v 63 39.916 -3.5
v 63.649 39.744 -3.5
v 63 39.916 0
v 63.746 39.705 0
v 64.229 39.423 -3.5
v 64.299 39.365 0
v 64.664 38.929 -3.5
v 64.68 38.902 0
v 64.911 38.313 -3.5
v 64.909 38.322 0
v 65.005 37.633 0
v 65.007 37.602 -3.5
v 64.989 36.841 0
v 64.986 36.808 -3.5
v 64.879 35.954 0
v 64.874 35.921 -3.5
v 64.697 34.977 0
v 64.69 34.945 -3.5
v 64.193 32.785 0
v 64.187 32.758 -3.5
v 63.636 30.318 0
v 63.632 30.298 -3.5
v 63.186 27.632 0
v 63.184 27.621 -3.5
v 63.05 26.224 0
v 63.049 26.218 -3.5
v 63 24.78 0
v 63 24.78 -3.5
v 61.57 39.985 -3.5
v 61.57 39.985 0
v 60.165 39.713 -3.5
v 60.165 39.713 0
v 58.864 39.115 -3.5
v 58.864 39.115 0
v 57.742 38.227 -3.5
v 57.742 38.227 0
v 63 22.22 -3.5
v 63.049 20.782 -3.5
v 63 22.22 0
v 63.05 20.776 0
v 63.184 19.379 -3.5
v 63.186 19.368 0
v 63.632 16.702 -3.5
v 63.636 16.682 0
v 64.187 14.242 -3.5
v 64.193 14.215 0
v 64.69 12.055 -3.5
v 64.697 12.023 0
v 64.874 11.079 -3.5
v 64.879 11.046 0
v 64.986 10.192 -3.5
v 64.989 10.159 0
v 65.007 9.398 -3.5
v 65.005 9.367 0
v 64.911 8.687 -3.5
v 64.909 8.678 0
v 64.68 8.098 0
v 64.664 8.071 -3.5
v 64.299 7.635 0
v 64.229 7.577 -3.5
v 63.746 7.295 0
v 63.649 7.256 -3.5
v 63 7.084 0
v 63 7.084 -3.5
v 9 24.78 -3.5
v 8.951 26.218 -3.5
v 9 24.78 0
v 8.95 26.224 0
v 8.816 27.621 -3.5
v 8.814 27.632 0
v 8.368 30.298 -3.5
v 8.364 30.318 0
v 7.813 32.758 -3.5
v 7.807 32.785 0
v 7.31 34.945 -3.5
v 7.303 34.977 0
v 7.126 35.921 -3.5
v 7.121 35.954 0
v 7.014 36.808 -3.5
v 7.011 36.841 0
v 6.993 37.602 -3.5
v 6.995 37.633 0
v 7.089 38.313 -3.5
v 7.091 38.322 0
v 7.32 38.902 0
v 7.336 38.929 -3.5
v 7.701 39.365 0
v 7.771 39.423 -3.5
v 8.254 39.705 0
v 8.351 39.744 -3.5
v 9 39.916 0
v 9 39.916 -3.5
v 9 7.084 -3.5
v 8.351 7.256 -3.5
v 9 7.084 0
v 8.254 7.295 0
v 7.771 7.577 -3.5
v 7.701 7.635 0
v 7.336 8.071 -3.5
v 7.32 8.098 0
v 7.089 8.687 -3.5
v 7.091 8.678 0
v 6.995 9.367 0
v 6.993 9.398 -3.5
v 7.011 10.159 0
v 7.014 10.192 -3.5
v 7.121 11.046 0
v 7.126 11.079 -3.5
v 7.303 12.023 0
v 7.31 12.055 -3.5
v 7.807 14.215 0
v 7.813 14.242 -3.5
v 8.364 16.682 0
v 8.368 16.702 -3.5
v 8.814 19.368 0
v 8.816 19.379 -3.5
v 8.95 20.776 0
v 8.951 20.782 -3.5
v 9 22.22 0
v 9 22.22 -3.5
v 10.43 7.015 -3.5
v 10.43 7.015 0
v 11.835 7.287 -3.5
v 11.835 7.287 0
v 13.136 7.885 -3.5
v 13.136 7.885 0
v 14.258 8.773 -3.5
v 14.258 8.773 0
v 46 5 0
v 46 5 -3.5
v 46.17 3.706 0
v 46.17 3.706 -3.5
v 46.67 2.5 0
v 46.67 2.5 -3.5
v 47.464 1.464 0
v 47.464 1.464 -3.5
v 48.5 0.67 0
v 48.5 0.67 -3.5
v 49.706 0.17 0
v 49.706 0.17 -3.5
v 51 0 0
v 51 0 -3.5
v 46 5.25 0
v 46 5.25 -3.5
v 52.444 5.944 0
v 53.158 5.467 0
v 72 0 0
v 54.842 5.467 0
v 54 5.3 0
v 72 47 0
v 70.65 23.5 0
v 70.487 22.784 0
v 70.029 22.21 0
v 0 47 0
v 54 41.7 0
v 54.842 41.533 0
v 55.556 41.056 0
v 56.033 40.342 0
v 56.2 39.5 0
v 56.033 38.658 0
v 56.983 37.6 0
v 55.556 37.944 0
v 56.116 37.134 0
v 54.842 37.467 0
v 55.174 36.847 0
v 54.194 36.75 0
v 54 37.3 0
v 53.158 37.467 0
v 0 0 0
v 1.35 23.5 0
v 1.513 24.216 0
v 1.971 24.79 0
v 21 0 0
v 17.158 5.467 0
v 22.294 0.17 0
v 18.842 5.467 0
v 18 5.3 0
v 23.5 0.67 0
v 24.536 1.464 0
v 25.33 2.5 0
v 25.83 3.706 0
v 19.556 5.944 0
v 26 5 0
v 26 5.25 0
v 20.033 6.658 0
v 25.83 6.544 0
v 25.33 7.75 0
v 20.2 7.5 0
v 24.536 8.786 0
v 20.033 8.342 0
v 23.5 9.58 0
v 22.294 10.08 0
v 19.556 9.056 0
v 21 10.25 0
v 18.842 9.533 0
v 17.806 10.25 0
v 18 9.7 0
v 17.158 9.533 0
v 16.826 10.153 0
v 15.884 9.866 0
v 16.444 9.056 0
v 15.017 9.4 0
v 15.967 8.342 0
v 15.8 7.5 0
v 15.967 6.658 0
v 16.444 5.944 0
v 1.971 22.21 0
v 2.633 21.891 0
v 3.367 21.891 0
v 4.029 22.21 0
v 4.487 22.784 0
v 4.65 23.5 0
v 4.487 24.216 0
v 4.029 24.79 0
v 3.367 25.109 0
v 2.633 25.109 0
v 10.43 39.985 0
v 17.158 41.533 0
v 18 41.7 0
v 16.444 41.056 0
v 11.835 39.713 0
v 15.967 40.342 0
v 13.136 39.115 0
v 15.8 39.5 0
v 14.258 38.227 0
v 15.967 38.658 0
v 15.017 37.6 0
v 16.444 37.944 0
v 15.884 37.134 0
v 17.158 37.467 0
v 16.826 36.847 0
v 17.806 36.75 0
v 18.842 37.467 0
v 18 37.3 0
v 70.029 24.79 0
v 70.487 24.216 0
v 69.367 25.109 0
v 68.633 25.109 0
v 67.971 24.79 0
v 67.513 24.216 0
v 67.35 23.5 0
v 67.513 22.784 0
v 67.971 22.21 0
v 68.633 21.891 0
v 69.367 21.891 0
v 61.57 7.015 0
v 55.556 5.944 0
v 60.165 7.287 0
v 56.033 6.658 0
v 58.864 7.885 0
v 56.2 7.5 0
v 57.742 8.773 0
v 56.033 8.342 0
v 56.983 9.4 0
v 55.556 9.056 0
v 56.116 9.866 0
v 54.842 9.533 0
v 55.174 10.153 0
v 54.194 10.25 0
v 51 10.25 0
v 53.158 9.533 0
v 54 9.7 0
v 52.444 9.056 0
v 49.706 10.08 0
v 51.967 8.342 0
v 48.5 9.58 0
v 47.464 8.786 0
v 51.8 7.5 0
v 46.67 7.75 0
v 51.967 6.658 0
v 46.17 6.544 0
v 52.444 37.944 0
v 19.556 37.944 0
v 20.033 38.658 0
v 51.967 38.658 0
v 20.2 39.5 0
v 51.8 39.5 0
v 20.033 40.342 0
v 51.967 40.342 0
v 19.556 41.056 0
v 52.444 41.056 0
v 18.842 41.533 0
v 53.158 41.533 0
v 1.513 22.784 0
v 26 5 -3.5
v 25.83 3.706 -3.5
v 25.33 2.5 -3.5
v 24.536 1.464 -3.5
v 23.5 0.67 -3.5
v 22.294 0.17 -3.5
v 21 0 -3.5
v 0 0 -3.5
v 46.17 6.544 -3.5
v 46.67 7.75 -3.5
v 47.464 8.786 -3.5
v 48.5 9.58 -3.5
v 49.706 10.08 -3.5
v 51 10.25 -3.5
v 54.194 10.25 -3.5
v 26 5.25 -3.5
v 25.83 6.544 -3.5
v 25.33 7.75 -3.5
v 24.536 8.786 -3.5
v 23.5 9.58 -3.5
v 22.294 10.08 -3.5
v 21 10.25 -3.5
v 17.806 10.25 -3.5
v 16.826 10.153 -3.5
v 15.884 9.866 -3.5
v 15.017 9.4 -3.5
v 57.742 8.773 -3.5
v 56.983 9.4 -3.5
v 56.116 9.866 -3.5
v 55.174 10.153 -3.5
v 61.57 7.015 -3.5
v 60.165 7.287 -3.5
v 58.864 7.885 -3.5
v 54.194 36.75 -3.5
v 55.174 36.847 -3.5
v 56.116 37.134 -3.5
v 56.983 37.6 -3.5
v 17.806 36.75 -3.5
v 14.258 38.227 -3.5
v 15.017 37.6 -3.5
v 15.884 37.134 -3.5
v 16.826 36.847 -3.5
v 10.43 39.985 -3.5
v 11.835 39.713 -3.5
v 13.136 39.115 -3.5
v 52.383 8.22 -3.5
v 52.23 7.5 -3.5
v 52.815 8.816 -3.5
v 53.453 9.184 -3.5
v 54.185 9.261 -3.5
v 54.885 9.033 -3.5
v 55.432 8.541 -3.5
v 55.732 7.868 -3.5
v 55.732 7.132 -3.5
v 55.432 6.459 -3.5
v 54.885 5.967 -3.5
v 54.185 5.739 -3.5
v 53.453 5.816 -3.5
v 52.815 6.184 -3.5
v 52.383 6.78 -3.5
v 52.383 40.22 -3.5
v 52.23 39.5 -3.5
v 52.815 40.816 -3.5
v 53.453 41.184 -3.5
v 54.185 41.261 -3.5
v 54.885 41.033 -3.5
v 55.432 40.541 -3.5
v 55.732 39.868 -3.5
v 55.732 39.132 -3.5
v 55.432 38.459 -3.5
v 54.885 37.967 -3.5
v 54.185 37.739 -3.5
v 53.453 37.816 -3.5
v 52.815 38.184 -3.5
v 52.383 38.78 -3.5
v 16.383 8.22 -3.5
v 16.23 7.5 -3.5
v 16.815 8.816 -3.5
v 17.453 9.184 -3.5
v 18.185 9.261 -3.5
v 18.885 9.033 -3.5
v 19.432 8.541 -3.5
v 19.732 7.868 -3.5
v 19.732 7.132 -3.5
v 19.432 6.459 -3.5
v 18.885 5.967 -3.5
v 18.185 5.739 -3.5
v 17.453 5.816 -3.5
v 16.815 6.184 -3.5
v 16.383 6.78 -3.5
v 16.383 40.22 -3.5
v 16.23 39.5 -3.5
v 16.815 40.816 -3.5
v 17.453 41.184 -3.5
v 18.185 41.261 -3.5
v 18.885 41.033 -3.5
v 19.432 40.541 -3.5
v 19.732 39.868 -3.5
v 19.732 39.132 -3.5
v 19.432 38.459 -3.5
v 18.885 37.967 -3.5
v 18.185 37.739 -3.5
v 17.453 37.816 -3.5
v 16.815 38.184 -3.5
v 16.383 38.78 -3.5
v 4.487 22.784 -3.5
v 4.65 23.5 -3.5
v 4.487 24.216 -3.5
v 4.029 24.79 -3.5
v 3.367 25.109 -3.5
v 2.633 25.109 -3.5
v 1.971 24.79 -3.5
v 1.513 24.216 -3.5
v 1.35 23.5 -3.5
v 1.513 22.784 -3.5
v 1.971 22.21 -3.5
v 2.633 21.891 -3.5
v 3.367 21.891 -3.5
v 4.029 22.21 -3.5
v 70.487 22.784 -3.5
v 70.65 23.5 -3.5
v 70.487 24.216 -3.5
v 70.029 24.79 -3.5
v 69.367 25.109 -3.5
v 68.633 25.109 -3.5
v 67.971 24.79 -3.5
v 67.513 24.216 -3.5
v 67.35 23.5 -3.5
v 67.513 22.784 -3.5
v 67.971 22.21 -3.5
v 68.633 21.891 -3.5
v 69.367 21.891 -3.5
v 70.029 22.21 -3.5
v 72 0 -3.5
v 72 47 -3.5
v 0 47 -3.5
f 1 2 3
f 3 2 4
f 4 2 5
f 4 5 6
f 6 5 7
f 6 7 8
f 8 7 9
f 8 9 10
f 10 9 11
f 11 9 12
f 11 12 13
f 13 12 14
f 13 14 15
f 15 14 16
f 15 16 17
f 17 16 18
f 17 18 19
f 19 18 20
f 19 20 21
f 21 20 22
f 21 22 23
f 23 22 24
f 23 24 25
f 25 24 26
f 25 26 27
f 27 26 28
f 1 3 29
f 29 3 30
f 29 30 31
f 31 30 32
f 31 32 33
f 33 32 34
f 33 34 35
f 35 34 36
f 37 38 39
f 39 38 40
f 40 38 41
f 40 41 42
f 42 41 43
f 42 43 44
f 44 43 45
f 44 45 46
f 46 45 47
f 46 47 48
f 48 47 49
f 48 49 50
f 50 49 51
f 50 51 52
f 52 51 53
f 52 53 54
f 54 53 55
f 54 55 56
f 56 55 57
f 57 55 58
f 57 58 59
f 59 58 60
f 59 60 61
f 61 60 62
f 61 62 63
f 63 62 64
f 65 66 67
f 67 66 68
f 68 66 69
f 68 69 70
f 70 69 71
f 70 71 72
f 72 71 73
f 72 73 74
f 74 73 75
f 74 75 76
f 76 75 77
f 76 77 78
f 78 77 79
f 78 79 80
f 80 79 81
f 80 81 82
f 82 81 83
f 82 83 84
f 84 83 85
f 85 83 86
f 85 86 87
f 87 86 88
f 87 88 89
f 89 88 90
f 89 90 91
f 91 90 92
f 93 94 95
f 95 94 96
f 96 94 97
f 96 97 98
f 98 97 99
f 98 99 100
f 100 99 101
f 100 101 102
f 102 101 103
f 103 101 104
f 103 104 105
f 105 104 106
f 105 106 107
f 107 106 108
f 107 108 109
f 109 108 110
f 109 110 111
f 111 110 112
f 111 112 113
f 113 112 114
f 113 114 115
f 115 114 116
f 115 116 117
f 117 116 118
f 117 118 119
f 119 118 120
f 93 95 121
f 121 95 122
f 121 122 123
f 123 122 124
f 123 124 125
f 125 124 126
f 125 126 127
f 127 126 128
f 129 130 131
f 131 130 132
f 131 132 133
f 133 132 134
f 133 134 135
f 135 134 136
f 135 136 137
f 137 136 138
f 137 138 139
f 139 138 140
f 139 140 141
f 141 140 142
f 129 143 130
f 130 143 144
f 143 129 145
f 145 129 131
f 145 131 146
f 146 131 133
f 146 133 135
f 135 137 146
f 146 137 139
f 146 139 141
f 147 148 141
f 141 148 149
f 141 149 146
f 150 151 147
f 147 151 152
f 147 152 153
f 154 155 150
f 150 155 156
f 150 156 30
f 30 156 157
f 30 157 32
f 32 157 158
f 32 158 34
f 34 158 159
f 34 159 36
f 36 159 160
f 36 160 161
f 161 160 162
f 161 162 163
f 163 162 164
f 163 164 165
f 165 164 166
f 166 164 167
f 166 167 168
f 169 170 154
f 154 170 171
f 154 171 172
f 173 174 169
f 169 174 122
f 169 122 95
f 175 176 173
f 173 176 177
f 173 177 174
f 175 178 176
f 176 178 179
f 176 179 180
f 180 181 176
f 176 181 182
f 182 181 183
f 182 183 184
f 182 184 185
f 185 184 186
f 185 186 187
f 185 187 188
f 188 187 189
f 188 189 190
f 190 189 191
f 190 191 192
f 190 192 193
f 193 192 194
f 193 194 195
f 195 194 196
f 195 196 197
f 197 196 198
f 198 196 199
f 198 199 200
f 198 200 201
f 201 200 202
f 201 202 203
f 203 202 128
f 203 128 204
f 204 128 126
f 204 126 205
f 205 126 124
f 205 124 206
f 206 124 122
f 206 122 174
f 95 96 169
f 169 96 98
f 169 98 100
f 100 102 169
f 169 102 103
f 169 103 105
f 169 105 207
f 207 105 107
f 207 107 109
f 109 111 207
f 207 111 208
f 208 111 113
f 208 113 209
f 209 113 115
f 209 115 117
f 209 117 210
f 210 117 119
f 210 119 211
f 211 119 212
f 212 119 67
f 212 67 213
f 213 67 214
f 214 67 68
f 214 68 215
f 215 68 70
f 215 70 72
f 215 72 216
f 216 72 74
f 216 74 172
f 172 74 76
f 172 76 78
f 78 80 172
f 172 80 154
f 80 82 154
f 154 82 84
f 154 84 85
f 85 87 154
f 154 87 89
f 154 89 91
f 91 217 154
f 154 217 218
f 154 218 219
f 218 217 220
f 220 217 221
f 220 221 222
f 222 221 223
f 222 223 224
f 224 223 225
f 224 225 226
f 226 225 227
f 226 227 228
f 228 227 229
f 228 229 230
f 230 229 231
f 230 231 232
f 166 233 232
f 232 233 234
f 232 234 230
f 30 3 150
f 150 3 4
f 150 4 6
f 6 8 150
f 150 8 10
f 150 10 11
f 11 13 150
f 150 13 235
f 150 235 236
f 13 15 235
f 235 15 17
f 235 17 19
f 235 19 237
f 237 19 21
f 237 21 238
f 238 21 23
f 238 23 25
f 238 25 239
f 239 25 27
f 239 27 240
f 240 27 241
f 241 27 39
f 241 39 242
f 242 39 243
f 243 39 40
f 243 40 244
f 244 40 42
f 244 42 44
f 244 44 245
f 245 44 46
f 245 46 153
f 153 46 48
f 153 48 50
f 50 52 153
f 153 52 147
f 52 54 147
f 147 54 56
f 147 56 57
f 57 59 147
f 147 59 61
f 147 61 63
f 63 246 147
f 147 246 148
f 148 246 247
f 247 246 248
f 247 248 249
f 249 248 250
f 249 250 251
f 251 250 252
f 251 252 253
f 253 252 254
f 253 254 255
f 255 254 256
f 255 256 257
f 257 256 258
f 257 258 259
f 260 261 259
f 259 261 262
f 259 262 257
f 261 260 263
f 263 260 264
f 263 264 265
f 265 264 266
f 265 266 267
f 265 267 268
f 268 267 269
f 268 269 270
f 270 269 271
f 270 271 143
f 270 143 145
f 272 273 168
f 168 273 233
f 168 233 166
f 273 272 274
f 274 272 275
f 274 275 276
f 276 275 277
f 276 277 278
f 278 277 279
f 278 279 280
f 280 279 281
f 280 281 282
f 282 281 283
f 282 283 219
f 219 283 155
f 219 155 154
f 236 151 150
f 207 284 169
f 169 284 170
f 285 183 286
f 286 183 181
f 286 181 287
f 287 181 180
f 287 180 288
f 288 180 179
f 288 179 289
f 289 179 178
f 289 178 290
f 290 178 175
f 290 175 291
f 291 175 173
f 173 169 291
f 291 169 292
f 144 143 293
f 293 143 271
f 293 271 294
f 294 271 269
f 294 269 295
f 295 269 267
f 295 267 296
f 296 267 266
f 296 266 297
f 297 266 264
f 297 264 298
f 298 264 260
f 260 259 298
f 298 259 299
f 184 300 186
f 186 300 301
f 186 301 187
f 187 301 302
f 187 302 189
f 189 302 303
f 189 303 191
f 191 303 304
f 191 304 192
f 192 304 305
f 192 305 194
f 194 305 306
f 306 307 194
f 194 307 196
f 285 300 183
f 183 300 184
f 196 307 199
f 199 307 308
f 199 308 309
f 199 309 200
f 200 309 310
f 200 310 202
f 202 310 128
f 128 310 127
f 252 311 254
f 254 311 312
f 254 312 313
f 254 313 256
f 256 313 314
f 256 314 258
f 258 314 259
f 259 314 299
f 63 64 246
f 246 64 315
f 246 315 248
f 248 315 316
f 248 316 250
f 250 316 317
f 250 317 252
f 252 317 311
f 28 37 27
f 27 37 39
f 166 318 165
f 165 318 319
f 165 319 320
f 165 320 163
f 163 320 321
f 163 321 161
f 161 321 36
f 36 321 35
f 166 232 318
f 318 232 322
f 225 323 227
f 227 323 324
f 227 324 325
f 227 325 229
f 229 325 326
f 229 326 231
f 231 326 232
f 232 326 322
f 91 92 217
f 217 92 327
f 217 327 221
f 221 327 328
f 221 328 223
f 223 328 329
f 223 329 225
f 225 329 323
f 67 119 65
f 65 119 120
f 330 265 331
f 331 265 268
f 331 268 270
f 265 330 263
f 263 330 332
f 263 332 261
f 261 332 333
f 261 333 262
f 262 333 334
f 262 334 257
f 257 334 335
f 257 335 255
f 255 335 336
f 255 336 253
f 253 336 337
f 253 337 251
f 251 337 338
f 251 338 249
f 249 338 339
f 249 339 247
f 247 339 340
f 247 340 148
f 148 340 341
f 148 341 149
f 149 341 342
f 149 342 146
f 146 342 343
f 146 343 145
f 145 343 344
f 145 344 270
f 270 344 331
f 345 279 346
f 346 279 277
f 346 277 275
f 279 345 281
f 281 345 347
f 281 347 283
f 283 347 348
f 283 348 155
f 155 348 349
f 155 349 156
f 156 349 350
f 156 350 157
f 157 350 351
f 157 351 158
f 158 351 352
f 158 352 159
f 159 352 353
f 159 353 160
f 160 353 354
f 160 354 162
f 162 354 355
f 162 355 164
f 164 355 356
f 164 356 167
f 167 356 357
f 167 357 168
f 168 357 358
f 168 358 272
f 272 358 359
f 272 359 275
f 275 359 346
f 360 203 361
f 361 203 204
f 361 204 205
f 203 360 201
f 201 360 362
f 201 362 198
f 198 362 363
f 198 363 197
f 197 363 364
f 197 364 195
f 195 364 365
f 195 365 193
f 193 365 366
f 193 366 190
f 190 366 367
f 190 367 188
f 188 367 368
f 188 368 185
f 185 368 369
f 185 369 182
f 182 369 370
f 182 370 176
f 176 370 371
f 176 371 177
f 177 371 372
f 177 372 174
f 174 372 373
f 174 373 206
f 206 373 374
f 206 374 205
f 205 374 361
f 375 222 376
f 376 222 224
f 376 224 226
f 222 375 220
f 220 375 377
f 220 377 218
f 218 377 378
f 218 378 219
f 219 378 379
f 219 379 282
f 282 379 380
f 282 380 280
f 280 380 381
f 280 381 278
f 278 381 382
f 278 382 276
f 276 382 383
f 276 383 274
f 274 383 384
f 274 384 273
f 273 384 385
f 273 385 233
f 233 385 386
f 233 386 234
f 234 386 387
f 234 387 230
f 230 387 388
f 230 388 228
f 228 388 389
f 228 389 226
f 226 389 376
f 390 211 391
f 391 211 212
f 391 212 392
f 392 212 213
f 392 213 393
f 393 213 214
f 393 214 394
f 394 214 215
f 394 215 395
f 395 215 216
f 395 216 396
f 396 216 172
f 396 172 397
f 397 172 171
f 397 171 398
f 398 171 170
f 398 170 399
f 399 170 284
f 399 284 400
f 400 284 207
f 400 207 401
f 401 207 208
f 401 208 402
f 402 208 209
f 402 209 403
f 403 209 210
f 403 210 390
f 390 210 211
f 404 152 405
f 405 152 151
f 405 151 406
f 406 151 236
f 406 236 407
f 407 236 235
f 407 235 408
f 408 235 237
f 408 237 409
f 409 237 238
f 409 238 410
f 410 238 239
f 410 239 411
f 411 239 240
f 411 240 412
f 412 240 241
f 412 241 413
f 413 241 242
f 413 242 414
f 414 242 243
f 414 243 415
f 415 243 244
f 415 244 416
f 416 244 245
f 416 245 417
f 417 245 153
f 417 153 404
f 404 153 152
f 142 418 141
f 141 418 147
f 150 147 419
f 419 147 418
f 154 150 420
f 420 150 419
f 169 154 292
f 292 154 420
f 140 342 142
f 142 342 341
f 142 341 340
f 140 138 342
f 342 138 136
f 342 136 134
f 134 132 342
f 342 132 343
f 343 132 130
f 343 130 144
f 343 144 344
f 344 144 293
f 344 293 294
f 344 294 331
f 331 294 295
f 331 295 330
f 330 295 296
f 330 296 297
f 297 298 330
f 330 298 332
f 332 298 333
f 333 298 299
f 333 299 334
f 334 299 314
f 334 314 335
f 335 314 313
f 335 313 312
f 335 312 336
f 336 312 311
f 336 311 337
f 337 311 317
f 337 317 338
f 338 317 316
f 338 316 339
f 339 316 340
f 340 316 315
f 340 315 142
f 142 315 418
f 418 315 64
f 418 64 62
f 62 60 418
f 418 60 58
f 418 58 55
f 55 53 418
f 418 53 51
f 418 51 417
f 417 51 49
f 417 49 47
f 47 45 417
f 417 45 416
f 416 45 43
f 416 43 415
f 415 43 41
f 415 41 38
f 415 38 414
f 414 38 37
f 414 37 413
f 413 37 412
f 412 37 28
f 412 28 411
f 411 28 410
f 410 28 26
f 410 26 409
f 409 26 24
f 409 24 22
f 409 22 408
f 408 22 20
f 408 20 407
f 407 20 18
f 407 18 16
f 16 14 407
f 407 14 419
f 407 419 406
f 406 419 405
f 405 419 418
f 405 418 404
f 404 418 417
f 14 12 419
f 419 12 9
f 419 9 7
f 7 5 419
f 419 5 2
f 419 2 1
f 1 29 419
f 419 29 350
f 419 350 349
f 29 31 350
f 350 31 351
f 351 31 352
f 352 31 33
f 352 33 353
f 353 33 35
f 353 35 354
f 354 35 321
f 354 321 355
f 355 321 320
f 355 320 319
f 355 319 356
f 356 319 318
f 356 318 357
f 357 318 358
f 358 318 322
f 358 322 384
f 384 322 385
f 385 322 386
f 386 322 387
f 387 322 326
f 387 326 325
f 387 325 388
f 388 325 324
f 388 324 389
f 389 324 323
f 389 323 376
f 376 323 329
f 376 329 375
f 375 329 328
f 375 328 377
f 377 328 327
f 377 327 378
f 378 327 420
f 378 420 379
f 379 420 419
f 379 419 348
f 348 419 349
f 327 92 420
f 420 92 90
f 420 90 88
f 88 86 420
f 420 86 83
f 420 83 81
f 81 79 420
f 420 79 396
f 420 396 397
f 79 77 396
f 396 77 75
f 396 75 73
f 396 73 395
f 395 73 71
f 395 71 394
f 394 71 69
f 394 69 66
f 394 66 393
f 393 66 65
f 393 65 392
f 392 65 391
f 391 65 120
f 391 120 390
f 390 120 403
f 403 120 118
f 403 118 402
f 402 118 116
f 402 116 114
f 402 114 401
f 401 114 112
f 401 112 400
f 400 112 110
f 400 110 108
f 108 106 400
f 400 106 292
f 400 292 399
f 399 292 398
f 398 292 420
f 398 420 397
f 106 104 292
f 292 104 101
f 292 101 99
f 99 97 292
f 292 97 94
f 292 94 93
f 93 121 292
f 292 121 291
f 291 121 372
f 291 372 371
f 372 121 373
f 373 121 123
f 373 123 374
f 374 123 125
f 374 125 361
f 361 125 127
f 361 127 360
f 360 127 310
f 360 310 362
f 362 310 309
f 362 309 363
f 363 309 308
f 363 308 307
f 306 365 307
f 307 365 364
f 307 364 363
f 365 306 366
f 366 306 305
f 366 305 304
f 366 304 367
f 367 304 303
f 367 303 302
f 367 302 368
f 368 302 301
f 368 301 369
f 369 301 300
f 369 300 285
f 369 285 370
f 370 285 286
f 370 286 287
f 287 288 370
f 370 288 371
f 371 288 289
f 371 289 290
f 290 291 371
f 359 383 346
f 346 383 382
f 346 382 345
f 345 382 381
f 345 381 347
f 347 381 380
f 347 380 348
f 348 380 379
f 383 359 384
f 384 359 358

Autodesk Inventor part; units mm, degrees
ref_plane "XY Plane" through (0, 0, 0) normal (0, 0, 1) x (1, 0, 0)
sketch "Sketch1" plane through (0, 0, 0) normal (0, 0, 1) x (1, 0, 0)
  line L0 (0, 0) -> (72, 0)
  line L1 (72, 0) -> (72, 47)
  line L2 (72, 47) -> (0, 47)
  line L3 (0, 47) -> (0, 0)
  circle A0 centre (3, 23.5) radius 1.65
  circle A1 centre (69, 23.5) radius 1.65
  line L4 (0, 23.5) -> (72, 23.5) construction
  circle A2 centre (18, 39.5) radius 2.2
  circle A3 centre (54, 39.5) radius 2.2
  circle A4 centre (54, 7.5) radius 2.2
  circle A5 centre (18, 7.5) radius 2.2
  line L5 (18, 39.5) -> (18, 7.5) construction
  line L6 (18, 7.5) -> (54, 7.5) construction
  line L7 (54, 7.5) -> (54, 39.5) construction
  line L8 (54, 39.5) -> (18, 39.5) construction
  line L9 (3.1536, 51.5748) -> (75.0735, 51.5748) construction
  line L10 (75.0735, 51.5748) -> (75.0735, -9.0389) construction
  line L11 (75.0735, -9.0389) -> (3.1536, -9.0389) construction
  line L12 (3.1536, -9.0389) -> (3.1536, 51.5748) construction
  circle A6 centre (10, 34) radius 6
  line L13 (36, 0) -> (36, 47)
  line L14 (9, 28.0839) -> (9, 23.5)
  line L15 (15.3327, 36.75) -> (36, 36.75)
  circle A7 centre (62, 34) radius 6
  line L16 (63, 28.0839) -> (63, 23.5)
  line L17 (56.6673, 36.75) -> (36, 36.75)
  circle A8 centre (10, 13) radius 6
  line L18 (9, 18.9161) -> (9, 23.5)
  line L19 (15.3327, 10.25) -> (36, 10.25)
  circle A9 centre (62, 13) radius 6
  line L20 (56.6673, 10.25) -> (36, 10.25)
  line L21 (63, 18.9161) -> (63, 23.5)
  line L22 (26, 10.25) -> (46, 10.25)
  line L23 (46, 10.25) -> (46, 0)
  line L24 (46, 0) -> (26, 0)
  line L25 (26, 0) -> (26, 10.25)
  point P0 (36, 39.5)
  point P1 (54, 23.5)
  dimension "d0" = 72
  dimension "d1" = 47
  dimension "d2" = 3.3
  dimension "d3" = 3.3
  dimension "d4" = 66
  dimension "d5" = 3
  dimension "d6" = 36
  dimension "d7" = 32
  dimension "d8" = 36
  dimension "d9" = 4.4
  dimension "d10" = 4.4
  dimension "d11" = 4.4
  dimension "d12" = 4.4
  dimension "d32" = 12
  dimension "d33" = 10
  dimension "d34" = 13
  dimension "d35" = 9
  dimension "d36" = 10.25
  dimension "d44" = 10
  dimension "d45" = 10
extrude "Extrusion1" add sketch "Sketch1" against normal blind 3.5 contours L3 L2 L13 L15 A6 L14 L18 A8 L19 L25 L0 | L25 L19 L13 L0 | L13 L20 L23 L0 | L2 L1 L0 L23 L20 A9 L21 L16 A7 L17 L13 | A2 | A3 | A4 | A5
extrude "Extrusion2" cut sketch "Sketch1" against normal through all draft -7 contours A2 | A3 | A4 | A5
fillet "Fillet1" radius 5 8 edges at (9, 18.9161, -1.75) (9, 28.0839, -1.75) (15.3327, 36.75, -1.75) (56.6673, 36.75, -1.75) (63, 18.9161, -1.75) (56.6673, 10.25, -1.75) (15.3327, 10.25, -1.75) (63, 28.0839, -1.75)
extrude "Extrusion3" cut sketch "Sketch1" against normal through all contours L25 L19 L13 L0 | L13 L20 L23 L0
fillet "Fillet2" radius 5 4 edges at (26, 10.25, -1.75) (46, 10.25, -1.75) (26, 0, -1.75) (46, 0, -1.75)
sketch "Sketch2" plane through (0, 0, 0) normal (0, 0, 1) x (1, 0, 0)
  arc A0 (6.7273, 18.0288) -> (9, 22.2195) centre (4, 22.2195) ccw projected
  arc A1 (6.7273, 18.0288) -> (14.258, 8.7727) centre (10, 13) ccw projected
  line L0 (9, 22.2195) -> (9, 24.7805) projected
  arc A2 (6.7273, 18.0288) -> (9, 22.2195) centre (4, 22.2195) ccw projected
  line L1 (9, 22.2195) -> (9, 14.4433) construction
  line L2 (9, 14.4433) -> (4.4748, 7.8488) construction
  arc A3 (6.7273, 18.0288) -> (14.258, 8.7727) centre (10, 13) ccw projected
  line L3 (4.4748, 7.8488) -> (9, 7.0839) construction
  spline S0 degree 3 poles (9, 22.2195) (9, 14.4433) (4.4748, 7.8488) (9, 7.0839) knots 1 1 1 1 2 2 2 2
  point P0 (0, 0)
  point P1 (8.9999, 7.0839)
  dimension "d50" = 1
extrude "Extrusion4" add sketch "Sketch2" against normal up to surface (3.5 mm away)
ref_plane "Work Plane1" through (3, 23.5, 0) normal (0, 1, 0) x (-1, 0, 0)
mirror "Mirror1" about plane through (3, 23.5, 0) normal (0, 1, 0) of "Extrusion4"
ref_plane "Work Plane2" through (36, 10.25, 0) normal (1, 0, 0) x (0, 1, 0)
mirror "Mirror2" about plane through (36, 10.25, 0) normal (1, 0, 0) of "Extrusion4", "Mirror1"
equation "\"d8\" = 0.5 * d0"
equation "\"d10\" = d9"
equation "\"d11\" = d9"
equation "\"d12\" = d9"
properties part number "lidar_mount_frame_lidar_lite_v3hp"
